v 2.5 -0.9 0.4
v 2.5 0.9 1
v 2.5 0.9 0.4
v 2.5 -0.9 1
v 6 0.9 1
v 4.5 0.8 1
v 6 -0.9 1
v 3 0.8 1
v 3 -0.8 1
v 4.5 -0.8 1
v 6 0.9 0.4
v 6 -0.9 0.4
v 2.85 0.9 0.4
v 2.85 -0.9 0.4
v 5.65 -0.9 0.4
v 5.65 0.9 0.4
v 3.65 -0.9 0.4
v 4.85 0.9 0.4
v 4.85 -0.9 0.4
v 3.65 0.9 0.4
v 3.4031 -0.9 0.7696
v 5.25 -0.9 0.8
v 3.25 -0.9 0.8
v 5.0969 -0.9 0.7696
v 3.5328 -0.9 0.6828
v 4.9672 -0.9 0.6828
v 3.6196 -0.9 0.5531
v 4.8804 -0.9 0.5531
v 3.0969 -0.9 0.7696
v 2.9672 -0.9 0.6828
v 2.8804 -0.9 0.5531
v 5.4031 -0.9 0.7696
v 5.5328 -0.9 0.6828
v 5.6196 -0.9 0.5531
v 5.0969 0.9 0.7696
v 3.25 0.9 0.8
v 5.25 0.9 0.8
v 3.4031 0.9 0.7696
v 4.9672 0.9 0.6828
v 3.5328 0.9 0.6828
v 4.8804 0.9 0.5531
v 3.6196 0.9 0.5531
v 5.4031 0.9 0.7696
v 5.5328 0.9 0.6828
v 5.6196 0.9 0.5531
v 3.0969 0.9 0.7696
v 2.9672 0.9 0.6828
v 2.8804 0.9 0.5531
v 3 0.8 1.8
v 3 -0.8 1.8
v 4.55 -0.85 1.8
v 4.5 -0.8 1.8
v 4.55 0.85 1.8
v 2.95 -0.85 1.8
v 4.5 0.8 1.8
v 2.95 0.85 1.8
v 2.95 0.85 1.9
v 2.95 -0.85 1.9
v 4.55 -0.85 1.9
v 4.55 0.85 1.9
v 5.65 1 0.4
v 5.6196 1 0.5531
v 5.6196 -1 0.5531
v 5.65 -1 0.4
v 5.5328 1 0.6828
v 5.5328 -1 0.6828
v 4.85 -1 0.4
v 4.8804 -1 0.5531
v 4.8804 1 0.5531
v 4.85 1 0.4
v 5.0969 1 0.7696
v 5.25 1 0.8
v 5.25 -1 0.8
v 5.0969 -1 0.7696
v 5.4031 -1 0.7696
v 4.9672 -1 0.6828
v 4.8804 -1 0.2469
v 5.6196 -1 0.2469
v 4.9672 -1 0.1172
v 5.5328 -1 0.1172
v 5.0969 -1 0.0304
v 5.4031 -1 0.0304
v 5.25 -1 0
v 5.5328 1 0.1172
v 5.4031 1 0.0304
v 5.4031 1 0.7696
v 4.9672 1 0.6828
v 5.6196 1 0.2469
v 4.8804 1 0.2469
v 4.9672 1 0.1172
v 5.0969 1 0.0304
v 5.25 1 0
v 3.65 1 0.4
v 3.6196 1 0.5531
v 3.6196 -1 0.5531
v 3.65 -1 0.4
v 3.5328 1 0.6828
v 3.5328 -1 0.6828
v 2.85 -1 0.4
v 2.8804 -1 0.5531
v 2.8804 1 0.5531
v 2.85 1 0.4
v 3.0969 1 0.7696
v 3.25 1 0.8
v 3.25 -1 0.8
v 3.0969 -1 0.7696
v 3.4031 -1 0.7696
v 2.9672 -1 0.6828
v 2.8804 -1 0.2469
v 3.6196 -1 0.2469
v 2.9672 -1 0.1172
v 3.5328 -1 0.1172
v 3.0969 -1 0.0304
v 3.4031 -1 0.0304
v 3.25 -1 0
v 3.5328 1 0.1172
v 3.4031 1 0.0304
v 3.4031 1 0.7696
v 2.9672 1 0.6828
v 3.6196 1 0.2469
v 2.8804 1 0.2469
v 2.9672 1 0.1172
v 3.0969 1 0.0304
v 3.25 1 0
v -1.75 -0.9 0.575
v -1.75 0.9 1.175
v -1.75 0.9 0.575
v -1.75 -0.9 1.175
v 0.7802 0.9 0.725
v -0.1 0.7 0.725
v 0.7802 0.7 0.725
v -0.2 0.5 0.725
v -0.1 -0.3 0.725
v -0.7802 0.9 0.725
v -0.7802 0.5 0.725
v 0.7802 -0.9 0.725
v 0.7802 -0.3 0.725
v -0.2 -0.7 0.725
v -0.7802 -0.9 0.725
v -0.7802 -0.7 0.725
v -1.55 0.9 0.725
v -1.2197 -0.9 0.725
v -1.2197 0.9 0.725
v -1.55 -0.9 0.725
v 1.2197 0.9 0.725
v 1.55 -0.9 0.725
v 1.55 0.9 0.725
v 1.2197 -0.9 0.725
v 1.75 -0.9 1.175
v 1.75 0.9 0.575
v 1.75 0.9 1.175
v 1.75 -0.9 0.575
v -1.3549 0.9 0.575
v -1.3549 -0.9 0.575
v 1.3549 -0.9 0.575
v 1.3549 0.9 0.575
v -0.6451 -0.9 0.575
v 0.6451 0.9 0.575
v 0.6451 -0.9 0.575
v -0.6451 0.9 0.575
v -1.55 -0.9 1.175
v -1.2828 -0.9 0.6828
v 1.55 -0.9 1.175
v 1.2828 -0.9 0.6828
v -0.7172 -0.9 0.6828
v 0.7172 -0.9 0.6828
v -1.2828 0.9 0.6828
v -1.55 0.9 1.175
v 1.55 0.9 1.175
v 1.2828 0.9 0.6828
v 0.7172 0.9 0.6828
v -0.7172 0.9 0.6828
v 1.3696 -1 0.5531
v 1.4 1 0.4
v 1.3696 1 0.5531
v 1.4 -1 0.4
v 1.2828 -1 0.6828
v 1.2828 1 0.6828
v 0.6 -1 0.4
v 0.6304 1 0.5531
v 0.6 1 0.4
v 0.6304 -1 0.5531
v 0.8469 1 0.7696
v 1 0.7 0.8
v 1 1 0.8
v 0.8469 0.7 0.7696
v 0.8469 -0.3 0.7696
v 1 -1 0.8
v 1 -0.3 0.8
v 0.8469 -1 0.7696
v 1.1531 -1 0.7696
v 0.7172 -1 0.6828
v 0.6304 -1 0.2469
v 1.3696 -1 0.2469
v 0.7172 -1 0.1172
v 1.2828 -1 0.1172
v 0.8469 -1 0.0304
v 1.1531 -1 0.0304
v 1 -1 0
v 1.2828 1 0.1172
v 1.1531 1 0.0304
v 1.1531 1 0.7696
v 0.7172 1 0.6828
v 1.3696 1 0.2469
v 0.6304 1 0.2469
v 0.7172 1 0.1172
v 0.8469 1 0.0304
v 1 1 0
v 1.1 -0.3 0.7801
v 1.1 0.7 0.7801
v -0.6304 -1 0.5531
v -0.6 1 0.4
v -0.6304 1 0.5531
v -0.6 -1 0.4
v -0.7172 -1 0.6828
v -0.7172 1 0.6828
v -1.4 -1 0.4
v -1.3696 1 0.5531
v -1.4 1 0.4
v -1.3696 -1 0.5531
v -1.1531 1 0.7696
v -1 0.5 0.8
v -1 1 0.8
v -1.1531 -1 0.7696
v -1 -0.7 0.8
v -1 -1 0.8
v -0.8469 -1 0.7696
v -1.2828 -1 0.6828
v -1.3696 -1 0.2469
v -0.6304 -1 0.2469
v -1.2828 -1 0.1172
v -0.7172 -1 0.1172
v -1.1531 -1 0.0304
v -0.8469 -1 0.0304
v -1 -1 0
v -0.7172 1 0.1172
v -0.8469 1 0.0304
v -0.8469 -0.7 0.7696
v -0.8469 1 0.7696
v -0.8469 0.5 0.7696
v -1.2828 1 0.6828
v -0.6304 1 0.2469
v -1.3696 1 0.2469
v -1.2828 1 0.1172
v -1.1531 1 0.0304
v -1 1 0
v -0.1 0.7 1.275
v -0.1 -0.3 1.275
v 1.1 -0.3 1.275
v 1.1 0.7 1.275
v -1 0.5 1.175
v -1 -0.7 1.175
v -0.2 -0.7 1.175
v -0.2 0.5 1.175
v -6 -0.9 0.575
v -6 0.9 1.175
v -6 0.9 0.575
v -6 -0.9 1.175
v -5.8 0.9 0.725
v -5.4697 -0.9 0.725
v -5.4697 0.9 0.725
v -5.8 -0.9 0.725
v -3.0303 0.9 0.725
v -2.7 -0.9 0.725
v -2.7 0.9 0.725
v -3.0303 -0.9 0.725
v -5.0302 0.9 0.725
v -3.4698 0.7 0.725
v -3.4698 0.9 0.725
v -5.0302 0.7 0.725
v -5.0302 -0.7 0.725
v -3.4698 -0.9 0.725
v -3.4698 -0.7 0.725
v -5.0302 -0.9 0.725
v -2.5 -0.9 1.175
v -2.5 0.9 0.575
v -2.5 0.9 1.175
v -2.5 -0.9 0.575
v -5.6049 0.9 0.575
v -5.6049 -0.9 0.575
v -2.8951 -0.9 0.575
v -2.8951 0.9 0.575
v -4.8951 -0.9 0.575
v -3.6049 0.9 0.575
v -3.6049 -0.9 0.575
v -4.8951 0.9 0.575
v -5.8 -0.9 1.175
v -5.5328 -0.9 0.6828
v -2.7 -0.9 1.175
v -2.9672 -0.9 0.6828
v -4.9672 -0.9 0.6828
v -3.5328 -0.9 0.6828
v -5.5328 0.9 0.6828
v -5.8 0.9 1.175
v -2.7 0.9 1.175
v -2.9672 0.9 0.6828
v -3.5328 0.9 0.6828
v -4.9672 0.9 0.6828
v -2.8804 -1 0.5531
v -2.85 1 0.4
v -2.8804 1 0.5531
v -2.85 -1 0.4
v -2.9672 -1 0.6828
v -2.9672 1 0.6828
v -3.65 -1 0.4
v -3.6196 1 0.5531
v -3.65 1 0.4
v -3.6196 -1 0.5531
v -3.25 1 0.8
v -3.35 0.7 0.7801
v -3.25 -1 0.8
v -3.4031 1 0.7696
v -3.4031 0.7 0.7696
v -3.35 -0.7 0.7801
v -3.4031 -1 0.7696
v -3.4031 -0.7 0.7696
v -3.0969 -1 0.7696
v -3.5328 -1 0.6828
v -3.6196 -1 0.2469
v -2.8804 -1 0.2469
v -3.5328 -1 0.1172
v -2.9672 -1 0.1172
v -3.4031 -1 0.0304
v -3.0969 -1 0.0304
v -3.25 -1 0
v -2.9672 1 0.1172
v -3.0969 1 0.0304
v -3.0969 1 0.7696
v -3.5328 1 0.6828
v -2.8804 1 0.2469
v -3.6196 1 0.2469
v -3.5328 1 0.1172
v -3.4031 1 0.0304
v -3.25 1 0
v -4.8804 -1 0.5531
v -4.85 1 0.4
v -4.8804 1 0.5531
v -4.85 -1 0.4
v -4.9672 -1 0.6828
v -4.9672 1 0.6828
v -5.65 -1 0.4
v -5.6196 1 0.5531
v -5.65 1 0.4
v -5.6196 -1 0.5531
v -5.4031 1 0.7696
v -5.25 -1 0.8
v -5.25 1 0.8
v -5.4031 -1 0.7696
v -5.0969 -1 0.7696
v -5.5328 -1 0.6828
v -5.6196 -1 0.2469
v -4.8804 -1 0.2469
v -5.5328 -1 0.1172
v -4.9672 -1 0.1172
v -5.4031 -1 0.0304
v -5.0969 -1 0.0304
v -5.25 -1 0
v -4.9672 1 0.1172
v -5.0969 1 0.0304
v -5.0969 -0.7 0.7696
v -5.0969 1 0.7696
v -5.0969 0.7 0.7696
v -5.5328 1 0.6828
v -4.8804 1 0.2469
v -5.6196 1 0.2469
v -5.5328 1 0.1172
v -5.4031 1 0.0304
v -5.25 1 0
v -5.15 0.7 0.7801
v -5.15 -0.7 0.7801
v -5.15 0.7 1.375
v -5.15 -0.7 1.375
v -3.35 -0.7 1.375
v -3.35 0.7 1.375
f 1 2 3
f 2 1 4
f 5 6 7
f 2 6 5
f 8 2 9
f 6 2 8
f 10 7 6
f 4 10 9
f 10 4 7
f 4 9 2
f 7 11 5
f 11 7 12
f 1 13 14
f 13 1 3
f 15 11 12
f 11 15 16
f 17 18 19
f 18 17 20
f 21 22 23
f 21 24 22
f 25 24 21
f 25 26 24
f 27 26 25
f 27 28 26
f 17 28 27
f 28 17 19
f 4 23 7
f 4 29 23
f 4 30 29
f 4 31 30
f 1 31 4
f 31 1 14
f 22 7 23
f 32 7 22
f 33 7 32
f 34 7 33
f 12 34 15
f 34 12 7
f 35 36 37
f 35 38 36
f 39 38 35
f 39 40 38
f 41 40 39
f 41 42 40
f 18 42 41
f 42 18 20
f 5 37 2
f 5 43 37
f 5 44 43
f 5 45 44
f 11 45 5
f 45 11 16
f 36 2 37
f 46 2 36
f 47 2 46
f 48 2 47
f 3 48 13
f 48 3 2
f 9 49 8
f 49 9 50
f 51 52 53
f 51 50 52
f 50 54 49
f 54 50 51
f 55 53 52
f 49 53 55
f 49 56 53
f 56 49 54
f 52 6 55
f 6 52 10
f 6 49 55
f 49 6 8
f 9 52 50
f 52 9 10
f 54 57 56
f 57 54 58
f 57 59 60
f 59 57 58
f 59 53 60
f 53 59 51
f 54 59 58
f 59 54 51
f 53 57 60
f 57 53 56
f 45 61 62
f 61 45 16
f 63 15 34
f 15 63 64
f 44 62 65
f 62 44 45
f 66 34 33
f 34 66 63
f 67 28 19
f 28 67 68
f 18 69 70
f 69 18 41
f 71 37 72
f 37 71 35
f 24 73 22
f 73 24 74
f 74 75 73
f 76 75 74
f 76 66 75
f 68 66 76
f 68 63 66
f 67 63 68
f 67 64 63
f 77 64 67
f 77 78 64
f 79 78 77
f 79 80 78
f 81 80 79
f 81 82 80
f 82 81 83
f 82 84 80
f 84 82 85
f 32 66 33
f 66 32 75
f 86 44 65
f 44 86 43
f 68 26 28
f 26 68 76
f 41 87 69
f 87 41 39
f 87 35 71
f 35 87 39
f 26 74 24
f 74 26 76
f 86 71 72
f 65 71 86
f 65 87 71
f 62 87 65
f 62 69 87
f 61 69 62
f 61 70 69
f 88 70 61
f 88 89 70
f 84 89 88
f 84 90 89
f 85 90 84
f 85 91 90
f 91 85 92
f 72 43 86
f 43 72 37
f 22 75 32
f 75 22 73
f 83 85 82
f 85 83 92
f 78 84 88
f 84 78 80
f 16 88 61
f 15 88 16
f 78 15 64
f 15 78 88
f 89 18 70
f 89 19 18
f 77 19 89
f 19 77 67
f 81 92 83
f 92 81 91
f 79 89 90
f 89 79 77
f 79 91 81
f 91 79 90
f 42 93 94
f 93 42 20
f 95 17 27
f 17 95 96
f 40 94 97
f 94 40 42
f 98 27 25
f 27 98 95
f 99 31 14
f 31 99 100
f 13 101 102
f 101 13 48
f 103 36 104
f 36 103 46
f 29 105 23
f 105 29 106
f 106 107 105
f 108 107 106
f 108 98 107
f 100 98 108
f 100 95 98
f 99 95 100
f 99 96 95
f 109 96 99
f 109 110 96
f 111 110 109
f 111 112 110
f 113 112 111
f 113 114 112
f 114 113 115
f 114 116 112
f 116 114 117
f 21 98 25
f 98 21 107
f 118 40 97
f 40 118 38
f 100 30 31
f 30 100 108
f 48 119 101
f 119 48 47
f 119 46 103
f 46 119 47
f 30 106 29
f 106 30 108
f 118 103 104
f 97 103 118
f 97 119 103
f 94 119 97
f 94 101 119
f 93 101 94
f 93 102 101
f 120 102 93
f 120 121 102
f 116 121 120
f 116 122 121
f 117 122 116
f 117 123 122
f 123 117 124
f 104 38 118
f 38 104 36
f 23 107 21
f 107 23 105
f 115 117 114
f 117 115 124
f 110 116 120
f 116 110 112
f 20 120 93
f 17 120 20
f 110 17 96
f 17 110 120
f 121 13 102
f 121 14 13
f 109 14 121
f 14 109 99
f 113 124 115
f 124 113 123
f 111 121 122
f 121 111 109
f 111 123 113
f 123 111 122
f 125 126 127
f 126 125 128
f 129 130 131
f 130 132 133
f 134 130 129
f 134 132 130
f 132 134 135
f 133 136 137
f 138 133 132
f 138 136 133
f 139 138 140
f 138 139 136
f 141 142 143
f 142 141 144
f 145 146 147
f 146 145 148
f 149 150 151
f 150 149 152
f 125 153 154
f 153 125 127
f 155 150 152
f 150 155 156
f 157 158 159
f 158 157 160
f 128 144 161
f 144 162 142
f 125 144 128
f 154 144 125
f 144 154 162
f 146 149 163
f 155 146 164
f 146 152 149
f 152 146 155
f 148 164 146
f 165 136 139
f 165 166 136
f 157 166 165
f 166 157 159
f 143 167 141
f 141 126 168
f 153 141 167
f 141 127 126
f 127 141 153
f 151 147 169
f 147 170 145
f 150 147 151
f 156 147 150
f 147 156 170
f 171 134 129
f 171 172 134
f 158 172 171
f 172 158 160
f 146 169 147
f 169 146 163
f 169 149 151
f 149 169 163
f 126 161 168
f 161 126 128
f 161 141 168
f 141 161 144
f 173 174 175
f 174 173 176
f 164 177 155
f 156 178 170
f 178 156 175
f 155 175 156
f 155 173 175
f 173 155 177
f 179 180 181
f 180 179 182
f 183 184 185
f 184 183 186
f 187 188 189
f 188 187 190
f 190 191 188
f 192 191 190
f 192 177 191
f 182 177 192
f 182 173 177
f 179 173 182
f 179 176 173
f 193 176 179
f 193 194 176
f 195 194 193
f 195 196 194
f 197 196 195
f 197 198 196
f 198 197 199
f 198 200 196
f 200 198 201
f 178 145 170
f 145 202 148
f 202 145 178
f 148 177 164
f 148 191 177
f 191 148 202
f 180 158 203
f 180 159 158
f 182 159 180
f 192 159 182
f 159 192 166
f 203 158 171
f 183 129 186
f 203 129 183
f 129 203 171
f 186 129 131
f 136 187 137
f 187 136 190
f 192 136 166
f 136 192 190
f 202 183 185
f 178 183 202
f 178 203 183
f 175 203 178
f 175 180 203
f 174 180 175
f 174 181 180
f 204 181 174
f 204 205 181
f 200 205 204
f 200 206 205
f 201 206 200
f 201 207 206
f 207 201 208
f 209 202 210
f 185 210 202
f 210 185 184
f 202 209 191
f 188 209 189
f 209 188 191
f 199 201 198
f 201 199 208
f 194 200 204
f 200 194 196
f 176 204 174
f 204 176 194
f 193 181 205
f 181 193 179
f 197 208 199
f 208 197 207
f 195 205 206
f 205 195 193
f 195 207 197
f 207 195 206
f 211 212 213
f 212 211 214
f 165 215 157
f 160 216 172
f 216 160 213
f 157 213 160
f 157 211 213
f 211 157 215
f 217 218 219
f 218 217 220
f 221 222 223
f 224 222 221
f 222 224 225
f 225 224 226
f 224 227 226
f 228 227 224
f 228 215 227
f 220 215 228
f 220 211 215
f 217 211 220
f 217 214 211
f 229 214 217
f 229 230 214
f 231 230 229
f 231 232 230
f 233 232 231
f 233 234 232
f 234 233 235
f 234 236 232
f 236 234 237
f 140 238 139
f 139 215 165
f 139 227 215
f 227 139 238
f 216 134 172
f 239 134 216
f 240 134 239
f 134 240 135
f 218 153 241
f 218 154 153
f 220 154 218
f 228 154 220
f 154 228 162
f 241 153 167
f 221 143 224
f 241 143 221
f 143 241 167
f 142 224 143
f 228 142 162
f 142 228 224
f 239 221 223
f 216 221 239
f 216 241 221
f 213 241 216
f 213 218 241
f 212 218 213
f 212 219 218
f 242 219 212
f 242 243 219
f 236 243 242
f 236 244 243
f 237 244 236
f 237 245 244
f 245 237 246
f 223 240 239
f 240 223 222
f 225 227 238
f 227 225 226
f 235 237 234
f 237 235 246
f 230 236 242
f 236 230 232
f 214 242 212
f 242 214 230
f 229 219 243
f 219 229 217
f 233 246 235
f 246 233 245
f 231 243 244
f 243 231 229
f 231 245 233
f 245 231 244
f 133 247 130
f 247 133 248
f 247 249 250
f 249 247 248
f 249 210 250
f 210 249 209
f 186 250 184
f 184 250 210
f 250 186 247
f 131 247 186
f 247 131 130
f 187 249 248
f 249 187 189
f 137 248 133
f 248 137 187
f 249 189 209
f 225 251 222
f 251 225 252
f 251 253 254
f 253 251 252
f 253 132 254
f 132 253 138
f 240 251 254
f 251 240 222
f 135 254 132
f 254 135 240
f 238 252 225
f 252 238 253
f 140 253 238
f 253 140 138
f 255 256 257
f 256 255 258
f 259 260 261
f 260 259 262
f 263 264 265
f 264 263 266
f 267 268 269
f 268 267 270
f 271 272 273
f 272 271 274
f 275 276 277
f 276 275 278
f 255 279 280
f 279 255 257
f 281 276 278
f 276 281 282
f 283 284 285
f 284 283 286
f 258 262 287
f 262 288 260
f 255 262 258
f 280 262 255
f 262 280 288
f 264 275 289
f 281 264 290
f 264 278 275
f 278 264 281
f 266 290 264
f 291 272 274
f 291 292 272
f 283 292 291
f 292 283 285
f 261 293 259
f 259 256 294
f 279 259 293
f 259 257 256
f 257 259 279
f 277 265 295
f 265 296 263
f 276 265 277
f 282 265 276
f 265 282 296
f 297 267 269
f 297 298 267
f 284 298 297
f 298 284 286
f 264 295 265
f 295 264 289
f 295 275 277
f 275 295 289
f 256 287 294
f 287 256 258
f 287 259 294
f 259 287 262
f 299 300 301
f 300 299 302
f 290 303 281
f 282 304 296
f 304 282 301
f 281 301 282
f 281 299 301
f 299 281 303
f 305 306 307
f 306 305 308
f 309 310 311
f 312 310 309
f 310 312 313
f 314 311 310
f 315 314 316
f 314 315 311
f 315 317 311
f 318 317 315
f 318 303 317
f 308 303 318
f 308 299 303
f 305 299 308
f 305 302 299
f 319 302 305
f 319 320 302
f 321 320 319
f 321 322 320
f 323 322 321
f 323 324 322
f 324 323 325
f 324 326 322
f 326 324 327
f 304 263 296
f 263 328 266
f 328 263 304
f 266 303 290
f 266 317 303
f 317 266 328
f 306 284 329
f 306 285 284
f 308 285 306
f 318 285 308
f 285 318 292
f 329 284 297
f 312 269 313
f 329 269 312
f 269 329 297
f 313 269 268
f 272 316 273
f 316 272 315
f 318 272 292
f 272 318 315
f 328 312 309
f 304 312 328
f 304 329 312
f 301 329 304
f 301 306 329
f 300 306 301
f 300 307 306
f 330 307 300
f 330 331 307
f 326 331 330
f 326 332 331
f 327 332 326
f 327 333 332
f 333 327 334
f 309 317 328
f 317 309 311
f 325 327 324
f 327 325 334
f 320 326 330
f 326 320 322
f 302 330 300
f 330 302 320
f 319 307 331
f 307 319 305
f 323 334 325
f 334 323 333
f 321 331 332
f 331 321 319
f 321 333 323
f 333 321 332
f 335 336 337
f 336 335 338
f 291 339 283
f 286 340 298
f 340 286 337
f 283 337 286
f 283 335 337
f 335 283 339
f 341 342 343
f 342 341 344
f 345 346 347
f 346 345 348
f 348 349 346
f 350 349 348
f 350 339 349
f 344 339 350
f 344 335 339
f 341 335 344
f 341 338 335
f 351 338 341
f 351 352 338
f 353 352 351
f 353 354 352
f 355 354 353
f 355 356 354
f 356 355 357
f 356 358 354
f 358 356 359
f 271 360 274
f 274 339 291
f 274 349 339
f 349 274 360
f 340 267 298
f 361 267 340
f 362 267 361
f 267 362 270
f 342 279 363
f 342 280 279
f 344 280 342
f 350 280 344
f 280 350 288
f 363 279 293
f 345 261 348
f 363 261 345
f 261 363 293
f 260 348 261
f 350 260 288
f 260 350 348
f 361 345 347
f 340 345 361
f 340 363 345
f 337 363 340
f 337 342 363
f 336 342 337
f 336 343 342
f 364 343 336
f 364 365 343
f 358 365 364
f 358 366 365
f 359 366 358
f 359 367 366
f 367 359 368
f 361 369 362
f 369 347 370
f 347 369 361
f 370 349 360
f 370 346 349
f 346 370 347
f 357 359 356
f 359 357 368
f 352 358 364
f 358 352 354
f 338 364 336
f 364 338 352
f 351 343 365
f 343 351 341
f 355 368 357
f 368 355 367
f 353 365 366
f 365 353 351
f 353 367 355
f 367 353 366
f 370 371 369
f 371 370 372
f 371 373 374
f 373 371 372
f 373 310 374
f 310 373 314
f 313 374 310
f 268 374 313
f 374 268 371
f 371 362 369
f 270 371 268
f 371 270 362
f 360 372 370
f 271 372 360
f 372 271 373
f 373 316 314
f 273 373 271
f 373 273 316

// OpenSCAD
// Airport Baggage Tug and Carts

$fn = 16; 
module wheel_axle() {
    color("DarkSlateGray")
    translate([0, 0, 0.4])
    rotate([90, 0, 0])
    cylinder(h=2.0, r=0.4, center=true);
}

module tug() {
    //Body
    color("Gold")
    translate([0, 0, 0.7])
    cube([3.5, 1.8, 0.6], center=true);

    // cabin
    color("White")
    translate([-0.5, 0, 1.4]) // to rear of tractor
    cube([1.5, 1.6, 0.8], center=true);

    // roof
    color("DarkGray")
    translate([-0.5, 0, 1.85])
    cube([1.6, 1.7, 0.1], center=true);

    // wheels
    translate([1.0, 0, 0]) wheel_axle();
    translate([-1.0, 0, 0]) wheel_axle();
}

module cart() {
    // frame
    color("LightGray")
    translate([0, 0, 0.65])
    cube([3.5, 1.8, 0.15], center=true);

    // walls
    color("Silver")
    translate([1.65, 0, 0.95])
    cube([0.2, 1.8, 0.45], center=true);
    
    color("Silver")
    translate([-1.65, 0, 0.95])
    cube([0.2, 1.8, 0.45], center=true);

    // Wheeld
    translate([1.0, 0, 0]) wheel_axle();
    translate([-1.0, 0, 0]) wheel_axle();
}

// luggage
module baggage_load_1() {
    color("Tomato")
    translate([0.5, 0.2, 1.0])
    cube([1.2, 1.0, 0.55], center=true);

    color("SteelBlue")
    translate([-0.6, -0.1, 0.95])
    cube([0.8, 1.2, 0.45], center=true);
}

module baggage_load_2() {
    color("MediumSeaGreen")
    translate([0, 0, 1.05])
    cube([1.8, 1.4, 0.65], center=true);
}

module airport_baggage_train() {
    
    // tug
    translate([4.25, 0, 0]) tug();

    translate([0, 0, 0]) {
        cart();
        baggage_load_1();
    }

    translate([-4.25, 0, 0]) {
        cart();
        baggage_load_2();
    }
}

airport_baggage_train();
